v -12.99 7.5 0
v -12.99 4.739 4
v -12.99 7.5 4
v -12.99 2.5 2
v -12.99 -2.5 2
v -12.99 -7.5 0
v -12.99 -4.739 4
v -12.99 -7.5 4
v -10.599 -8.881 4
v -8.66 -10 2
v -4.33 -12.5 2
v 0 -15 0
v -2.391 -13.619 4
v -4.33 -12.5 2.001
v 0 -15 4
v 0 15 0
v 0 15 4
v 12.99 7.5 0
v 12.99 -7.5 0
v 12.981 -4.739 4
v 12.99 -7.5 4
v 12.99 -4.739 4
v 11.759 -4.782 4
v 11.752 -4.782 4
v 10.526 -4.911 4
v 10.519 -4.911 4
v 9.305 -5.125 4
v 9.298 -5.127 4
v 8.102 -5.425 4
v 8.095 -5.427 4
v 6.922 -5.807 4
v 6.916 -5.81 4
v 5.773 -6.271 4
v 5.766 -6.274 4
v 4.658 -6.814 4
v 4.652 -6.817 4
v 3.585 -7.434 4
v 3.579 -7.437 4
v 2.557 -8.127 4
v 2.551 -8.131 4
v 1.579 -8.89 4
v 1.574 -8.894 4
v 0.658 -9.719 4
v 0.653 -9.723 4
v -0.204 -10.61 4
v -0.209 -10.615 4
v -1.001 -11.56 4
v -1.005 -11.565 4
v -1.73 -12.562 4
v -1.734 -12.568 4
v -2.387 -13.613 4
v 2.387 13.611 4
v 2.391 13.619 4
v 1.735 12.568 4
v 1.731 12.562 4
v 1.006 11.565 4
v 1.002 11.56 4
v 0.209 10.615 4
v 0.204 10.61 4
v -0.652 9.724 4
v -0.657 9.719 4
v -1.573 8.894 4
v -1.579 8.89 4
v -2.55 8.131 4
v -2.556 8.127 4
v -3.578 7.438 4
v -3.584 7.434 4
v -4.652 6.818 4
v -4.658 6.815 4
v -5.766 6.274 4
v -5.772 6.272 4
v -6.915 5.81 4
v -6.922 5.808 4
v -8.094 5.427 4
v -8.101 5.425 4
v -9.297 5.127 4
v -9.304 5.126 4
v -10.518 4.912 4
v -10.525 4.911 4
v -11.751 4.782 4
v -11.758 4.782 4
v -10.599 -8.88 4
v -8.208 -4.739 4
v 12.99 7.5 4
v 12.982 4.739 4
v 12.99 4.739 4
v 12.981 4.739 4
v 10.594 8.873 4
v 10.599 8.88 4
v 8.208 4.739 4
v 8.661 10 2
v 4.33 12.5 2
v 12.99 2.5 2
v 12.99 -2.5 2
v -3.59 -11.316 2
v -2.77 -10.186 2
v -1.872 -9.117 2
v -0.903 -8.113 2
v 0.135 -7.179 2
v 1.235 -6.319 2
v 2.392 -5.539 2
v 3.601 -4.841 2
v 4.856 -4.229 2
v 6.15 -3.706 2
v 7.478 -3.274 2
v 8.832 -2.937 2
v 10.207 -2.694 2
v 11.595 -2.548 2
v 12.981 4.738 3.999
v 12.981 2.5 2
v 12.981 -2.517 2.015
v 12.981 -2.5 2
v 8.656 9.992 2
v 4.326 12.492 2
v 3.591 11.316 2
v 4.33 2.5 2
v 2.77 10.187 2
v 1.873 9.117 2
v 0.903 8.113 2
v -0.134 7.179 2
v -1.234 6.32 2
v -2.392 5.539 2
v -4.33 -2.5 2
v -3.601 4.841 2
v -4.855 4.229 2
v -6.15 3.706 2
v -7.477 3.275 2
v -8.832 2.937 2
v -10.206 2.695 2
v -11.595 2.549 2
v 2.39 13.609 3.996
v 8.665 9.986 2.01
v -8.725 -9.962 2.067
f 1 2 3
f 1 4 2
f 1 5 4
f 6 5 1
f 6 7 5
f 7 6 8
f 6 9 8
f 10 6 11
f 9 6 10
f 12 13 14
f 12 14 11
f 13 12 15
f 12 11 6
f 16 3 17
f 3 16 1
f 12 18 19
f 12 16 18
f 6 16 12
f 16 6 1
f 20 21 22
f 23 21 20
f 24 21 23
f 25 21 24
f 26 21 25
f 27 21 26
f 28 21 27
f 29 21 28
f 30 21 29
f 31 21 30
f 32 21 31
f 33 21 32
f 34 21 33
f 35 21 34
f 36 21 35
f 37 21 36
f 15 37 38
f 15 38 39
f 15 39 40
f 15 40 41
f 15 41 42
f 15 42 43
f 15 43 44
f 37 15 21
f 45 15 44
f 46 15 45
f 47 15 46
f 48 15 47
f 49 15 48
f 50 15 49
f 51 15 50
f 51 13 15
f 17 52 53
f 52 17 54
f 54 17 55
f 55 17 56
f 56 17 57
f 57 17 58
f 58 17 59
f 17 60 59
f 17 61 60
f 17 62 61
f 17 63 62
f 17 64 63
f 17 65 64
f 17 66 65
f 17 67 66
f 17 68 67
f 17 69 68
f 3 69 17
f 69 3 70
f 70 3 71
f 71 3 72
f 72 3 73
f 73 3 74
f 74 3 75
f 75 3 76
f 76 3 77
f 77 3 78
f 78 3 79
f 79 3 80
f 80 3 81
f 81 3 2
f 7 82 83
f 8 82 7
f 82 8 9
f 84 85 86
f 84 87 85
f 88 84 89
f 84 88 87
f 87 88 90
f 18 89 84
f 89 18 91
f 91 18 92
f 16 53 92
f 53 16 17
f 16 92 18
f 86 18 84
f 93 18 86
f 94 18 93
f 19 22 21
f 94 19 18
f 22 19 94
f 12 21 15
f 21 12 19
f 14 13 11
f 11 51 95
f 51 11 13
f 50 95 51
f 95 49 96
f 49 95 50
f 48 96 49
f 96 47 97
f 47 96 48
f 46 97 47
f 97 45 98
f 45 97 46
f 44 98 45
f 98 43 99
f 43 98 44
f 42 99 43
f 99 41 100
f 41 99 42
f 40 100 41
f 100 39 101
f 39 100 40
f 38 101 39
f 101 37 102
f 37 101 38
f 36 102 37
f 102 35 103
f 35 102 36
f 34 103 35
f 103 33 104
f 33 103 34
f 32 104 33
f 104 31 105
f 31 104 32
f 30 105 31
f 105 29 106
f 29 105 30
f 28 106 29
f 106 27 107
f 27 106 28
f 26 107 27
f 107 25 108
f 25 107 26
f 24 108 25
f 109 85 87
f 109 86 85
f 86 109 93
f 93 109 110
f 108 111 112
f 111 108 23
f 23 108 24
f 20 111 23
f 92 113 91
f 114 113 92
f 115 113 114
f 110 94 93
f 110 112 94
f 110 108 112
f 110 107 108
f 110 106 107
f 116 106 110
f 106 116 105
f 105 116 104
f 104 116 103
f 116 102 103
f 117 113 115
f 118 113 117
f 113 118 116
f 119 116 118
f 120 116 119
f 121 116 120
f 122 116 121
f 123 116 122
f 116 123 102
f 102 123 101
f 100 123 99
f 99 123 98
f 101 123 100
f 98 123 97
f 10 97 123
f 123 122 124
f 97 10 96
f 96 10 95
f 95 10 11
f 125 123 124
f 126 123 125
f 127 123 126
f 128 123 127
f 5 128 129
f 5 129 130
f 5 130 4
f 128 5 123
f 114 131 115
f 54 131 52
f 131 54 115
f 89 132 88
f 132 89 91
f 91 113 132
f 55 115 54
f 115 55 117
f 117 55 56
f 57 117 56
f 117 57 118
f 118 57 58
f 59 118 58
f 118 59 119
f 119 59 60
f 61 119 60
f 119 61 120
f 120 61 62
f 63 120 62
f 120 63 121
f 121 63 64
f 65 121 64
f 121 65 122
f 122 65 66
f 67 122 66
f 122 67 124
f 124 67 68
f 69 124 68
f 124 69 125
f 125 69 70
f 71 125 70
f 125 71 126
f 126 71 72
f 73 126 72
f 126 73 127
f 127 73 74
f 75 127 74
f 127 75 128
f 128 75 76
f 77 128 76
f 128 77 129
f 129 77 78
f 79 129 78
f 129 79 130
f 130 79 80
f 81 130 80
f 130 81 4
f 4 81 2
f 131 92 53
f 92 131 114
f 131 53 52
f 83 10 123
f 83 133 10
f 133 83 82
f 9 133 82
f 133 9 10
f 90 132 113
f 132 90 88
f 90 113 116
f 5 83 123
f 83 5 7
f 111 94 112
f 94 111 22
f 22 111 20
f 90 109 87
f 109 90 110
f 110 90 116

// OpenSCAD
rotate(a = [0, 0, -90])
difference()
{
    color("Peru", 1.0)
    {
        // hexagon base
        linear_extrude(height = 4, center = false, convexity = 10, twist = 0)
        circle(r=15, $fn=6);
    }
    
    color("Blue", 1.0)
    {
        // canal shape
        rotate([0,0,60])
        translate([22.5,-12.99,0])
        rotate_extrude(angle=360, convexity=10, $fn=90)
        translate([-22.5,0,0])
        polygon(points=[[-4.75,4.01],[4.75,4.01],[2.5,2], [-2.5,2]]);
    }
    
    color("Blue", 1.0)
    {
        // canal shape
        translate([-22.5,-12.99,0])
        rotate_extrude(angle=360, convexity=10, $fn=90)
        translate([22.5,0,0])
        polygon(points=[[-4.75,4.01],[4.75,4.01],[2.5,2], [-2.5,2]]);
    }
    
    color("Blue", 1.0)
    {
        // canal shape
        rotate([0,0,60])
        rotate([90,0,0])
        linear_extrude(height=30, center=true, convexity = 10, twist = 0)
        polygon(points=[[-4.75,4.01],[4.75,4.01],[2.5,2], [-2.5,2]]);
    }
    
    color("Blue", 1.0)
    {
        // canal shape
        rotate([90,0,0])
        linear_extrude(height=30, center=true, convexity = 10, twist = 0)
        polygon(points=[[-4.75,4.01],[4.75,4.01],[2.5,2], [-2.5,2]]);
    }
    
}
